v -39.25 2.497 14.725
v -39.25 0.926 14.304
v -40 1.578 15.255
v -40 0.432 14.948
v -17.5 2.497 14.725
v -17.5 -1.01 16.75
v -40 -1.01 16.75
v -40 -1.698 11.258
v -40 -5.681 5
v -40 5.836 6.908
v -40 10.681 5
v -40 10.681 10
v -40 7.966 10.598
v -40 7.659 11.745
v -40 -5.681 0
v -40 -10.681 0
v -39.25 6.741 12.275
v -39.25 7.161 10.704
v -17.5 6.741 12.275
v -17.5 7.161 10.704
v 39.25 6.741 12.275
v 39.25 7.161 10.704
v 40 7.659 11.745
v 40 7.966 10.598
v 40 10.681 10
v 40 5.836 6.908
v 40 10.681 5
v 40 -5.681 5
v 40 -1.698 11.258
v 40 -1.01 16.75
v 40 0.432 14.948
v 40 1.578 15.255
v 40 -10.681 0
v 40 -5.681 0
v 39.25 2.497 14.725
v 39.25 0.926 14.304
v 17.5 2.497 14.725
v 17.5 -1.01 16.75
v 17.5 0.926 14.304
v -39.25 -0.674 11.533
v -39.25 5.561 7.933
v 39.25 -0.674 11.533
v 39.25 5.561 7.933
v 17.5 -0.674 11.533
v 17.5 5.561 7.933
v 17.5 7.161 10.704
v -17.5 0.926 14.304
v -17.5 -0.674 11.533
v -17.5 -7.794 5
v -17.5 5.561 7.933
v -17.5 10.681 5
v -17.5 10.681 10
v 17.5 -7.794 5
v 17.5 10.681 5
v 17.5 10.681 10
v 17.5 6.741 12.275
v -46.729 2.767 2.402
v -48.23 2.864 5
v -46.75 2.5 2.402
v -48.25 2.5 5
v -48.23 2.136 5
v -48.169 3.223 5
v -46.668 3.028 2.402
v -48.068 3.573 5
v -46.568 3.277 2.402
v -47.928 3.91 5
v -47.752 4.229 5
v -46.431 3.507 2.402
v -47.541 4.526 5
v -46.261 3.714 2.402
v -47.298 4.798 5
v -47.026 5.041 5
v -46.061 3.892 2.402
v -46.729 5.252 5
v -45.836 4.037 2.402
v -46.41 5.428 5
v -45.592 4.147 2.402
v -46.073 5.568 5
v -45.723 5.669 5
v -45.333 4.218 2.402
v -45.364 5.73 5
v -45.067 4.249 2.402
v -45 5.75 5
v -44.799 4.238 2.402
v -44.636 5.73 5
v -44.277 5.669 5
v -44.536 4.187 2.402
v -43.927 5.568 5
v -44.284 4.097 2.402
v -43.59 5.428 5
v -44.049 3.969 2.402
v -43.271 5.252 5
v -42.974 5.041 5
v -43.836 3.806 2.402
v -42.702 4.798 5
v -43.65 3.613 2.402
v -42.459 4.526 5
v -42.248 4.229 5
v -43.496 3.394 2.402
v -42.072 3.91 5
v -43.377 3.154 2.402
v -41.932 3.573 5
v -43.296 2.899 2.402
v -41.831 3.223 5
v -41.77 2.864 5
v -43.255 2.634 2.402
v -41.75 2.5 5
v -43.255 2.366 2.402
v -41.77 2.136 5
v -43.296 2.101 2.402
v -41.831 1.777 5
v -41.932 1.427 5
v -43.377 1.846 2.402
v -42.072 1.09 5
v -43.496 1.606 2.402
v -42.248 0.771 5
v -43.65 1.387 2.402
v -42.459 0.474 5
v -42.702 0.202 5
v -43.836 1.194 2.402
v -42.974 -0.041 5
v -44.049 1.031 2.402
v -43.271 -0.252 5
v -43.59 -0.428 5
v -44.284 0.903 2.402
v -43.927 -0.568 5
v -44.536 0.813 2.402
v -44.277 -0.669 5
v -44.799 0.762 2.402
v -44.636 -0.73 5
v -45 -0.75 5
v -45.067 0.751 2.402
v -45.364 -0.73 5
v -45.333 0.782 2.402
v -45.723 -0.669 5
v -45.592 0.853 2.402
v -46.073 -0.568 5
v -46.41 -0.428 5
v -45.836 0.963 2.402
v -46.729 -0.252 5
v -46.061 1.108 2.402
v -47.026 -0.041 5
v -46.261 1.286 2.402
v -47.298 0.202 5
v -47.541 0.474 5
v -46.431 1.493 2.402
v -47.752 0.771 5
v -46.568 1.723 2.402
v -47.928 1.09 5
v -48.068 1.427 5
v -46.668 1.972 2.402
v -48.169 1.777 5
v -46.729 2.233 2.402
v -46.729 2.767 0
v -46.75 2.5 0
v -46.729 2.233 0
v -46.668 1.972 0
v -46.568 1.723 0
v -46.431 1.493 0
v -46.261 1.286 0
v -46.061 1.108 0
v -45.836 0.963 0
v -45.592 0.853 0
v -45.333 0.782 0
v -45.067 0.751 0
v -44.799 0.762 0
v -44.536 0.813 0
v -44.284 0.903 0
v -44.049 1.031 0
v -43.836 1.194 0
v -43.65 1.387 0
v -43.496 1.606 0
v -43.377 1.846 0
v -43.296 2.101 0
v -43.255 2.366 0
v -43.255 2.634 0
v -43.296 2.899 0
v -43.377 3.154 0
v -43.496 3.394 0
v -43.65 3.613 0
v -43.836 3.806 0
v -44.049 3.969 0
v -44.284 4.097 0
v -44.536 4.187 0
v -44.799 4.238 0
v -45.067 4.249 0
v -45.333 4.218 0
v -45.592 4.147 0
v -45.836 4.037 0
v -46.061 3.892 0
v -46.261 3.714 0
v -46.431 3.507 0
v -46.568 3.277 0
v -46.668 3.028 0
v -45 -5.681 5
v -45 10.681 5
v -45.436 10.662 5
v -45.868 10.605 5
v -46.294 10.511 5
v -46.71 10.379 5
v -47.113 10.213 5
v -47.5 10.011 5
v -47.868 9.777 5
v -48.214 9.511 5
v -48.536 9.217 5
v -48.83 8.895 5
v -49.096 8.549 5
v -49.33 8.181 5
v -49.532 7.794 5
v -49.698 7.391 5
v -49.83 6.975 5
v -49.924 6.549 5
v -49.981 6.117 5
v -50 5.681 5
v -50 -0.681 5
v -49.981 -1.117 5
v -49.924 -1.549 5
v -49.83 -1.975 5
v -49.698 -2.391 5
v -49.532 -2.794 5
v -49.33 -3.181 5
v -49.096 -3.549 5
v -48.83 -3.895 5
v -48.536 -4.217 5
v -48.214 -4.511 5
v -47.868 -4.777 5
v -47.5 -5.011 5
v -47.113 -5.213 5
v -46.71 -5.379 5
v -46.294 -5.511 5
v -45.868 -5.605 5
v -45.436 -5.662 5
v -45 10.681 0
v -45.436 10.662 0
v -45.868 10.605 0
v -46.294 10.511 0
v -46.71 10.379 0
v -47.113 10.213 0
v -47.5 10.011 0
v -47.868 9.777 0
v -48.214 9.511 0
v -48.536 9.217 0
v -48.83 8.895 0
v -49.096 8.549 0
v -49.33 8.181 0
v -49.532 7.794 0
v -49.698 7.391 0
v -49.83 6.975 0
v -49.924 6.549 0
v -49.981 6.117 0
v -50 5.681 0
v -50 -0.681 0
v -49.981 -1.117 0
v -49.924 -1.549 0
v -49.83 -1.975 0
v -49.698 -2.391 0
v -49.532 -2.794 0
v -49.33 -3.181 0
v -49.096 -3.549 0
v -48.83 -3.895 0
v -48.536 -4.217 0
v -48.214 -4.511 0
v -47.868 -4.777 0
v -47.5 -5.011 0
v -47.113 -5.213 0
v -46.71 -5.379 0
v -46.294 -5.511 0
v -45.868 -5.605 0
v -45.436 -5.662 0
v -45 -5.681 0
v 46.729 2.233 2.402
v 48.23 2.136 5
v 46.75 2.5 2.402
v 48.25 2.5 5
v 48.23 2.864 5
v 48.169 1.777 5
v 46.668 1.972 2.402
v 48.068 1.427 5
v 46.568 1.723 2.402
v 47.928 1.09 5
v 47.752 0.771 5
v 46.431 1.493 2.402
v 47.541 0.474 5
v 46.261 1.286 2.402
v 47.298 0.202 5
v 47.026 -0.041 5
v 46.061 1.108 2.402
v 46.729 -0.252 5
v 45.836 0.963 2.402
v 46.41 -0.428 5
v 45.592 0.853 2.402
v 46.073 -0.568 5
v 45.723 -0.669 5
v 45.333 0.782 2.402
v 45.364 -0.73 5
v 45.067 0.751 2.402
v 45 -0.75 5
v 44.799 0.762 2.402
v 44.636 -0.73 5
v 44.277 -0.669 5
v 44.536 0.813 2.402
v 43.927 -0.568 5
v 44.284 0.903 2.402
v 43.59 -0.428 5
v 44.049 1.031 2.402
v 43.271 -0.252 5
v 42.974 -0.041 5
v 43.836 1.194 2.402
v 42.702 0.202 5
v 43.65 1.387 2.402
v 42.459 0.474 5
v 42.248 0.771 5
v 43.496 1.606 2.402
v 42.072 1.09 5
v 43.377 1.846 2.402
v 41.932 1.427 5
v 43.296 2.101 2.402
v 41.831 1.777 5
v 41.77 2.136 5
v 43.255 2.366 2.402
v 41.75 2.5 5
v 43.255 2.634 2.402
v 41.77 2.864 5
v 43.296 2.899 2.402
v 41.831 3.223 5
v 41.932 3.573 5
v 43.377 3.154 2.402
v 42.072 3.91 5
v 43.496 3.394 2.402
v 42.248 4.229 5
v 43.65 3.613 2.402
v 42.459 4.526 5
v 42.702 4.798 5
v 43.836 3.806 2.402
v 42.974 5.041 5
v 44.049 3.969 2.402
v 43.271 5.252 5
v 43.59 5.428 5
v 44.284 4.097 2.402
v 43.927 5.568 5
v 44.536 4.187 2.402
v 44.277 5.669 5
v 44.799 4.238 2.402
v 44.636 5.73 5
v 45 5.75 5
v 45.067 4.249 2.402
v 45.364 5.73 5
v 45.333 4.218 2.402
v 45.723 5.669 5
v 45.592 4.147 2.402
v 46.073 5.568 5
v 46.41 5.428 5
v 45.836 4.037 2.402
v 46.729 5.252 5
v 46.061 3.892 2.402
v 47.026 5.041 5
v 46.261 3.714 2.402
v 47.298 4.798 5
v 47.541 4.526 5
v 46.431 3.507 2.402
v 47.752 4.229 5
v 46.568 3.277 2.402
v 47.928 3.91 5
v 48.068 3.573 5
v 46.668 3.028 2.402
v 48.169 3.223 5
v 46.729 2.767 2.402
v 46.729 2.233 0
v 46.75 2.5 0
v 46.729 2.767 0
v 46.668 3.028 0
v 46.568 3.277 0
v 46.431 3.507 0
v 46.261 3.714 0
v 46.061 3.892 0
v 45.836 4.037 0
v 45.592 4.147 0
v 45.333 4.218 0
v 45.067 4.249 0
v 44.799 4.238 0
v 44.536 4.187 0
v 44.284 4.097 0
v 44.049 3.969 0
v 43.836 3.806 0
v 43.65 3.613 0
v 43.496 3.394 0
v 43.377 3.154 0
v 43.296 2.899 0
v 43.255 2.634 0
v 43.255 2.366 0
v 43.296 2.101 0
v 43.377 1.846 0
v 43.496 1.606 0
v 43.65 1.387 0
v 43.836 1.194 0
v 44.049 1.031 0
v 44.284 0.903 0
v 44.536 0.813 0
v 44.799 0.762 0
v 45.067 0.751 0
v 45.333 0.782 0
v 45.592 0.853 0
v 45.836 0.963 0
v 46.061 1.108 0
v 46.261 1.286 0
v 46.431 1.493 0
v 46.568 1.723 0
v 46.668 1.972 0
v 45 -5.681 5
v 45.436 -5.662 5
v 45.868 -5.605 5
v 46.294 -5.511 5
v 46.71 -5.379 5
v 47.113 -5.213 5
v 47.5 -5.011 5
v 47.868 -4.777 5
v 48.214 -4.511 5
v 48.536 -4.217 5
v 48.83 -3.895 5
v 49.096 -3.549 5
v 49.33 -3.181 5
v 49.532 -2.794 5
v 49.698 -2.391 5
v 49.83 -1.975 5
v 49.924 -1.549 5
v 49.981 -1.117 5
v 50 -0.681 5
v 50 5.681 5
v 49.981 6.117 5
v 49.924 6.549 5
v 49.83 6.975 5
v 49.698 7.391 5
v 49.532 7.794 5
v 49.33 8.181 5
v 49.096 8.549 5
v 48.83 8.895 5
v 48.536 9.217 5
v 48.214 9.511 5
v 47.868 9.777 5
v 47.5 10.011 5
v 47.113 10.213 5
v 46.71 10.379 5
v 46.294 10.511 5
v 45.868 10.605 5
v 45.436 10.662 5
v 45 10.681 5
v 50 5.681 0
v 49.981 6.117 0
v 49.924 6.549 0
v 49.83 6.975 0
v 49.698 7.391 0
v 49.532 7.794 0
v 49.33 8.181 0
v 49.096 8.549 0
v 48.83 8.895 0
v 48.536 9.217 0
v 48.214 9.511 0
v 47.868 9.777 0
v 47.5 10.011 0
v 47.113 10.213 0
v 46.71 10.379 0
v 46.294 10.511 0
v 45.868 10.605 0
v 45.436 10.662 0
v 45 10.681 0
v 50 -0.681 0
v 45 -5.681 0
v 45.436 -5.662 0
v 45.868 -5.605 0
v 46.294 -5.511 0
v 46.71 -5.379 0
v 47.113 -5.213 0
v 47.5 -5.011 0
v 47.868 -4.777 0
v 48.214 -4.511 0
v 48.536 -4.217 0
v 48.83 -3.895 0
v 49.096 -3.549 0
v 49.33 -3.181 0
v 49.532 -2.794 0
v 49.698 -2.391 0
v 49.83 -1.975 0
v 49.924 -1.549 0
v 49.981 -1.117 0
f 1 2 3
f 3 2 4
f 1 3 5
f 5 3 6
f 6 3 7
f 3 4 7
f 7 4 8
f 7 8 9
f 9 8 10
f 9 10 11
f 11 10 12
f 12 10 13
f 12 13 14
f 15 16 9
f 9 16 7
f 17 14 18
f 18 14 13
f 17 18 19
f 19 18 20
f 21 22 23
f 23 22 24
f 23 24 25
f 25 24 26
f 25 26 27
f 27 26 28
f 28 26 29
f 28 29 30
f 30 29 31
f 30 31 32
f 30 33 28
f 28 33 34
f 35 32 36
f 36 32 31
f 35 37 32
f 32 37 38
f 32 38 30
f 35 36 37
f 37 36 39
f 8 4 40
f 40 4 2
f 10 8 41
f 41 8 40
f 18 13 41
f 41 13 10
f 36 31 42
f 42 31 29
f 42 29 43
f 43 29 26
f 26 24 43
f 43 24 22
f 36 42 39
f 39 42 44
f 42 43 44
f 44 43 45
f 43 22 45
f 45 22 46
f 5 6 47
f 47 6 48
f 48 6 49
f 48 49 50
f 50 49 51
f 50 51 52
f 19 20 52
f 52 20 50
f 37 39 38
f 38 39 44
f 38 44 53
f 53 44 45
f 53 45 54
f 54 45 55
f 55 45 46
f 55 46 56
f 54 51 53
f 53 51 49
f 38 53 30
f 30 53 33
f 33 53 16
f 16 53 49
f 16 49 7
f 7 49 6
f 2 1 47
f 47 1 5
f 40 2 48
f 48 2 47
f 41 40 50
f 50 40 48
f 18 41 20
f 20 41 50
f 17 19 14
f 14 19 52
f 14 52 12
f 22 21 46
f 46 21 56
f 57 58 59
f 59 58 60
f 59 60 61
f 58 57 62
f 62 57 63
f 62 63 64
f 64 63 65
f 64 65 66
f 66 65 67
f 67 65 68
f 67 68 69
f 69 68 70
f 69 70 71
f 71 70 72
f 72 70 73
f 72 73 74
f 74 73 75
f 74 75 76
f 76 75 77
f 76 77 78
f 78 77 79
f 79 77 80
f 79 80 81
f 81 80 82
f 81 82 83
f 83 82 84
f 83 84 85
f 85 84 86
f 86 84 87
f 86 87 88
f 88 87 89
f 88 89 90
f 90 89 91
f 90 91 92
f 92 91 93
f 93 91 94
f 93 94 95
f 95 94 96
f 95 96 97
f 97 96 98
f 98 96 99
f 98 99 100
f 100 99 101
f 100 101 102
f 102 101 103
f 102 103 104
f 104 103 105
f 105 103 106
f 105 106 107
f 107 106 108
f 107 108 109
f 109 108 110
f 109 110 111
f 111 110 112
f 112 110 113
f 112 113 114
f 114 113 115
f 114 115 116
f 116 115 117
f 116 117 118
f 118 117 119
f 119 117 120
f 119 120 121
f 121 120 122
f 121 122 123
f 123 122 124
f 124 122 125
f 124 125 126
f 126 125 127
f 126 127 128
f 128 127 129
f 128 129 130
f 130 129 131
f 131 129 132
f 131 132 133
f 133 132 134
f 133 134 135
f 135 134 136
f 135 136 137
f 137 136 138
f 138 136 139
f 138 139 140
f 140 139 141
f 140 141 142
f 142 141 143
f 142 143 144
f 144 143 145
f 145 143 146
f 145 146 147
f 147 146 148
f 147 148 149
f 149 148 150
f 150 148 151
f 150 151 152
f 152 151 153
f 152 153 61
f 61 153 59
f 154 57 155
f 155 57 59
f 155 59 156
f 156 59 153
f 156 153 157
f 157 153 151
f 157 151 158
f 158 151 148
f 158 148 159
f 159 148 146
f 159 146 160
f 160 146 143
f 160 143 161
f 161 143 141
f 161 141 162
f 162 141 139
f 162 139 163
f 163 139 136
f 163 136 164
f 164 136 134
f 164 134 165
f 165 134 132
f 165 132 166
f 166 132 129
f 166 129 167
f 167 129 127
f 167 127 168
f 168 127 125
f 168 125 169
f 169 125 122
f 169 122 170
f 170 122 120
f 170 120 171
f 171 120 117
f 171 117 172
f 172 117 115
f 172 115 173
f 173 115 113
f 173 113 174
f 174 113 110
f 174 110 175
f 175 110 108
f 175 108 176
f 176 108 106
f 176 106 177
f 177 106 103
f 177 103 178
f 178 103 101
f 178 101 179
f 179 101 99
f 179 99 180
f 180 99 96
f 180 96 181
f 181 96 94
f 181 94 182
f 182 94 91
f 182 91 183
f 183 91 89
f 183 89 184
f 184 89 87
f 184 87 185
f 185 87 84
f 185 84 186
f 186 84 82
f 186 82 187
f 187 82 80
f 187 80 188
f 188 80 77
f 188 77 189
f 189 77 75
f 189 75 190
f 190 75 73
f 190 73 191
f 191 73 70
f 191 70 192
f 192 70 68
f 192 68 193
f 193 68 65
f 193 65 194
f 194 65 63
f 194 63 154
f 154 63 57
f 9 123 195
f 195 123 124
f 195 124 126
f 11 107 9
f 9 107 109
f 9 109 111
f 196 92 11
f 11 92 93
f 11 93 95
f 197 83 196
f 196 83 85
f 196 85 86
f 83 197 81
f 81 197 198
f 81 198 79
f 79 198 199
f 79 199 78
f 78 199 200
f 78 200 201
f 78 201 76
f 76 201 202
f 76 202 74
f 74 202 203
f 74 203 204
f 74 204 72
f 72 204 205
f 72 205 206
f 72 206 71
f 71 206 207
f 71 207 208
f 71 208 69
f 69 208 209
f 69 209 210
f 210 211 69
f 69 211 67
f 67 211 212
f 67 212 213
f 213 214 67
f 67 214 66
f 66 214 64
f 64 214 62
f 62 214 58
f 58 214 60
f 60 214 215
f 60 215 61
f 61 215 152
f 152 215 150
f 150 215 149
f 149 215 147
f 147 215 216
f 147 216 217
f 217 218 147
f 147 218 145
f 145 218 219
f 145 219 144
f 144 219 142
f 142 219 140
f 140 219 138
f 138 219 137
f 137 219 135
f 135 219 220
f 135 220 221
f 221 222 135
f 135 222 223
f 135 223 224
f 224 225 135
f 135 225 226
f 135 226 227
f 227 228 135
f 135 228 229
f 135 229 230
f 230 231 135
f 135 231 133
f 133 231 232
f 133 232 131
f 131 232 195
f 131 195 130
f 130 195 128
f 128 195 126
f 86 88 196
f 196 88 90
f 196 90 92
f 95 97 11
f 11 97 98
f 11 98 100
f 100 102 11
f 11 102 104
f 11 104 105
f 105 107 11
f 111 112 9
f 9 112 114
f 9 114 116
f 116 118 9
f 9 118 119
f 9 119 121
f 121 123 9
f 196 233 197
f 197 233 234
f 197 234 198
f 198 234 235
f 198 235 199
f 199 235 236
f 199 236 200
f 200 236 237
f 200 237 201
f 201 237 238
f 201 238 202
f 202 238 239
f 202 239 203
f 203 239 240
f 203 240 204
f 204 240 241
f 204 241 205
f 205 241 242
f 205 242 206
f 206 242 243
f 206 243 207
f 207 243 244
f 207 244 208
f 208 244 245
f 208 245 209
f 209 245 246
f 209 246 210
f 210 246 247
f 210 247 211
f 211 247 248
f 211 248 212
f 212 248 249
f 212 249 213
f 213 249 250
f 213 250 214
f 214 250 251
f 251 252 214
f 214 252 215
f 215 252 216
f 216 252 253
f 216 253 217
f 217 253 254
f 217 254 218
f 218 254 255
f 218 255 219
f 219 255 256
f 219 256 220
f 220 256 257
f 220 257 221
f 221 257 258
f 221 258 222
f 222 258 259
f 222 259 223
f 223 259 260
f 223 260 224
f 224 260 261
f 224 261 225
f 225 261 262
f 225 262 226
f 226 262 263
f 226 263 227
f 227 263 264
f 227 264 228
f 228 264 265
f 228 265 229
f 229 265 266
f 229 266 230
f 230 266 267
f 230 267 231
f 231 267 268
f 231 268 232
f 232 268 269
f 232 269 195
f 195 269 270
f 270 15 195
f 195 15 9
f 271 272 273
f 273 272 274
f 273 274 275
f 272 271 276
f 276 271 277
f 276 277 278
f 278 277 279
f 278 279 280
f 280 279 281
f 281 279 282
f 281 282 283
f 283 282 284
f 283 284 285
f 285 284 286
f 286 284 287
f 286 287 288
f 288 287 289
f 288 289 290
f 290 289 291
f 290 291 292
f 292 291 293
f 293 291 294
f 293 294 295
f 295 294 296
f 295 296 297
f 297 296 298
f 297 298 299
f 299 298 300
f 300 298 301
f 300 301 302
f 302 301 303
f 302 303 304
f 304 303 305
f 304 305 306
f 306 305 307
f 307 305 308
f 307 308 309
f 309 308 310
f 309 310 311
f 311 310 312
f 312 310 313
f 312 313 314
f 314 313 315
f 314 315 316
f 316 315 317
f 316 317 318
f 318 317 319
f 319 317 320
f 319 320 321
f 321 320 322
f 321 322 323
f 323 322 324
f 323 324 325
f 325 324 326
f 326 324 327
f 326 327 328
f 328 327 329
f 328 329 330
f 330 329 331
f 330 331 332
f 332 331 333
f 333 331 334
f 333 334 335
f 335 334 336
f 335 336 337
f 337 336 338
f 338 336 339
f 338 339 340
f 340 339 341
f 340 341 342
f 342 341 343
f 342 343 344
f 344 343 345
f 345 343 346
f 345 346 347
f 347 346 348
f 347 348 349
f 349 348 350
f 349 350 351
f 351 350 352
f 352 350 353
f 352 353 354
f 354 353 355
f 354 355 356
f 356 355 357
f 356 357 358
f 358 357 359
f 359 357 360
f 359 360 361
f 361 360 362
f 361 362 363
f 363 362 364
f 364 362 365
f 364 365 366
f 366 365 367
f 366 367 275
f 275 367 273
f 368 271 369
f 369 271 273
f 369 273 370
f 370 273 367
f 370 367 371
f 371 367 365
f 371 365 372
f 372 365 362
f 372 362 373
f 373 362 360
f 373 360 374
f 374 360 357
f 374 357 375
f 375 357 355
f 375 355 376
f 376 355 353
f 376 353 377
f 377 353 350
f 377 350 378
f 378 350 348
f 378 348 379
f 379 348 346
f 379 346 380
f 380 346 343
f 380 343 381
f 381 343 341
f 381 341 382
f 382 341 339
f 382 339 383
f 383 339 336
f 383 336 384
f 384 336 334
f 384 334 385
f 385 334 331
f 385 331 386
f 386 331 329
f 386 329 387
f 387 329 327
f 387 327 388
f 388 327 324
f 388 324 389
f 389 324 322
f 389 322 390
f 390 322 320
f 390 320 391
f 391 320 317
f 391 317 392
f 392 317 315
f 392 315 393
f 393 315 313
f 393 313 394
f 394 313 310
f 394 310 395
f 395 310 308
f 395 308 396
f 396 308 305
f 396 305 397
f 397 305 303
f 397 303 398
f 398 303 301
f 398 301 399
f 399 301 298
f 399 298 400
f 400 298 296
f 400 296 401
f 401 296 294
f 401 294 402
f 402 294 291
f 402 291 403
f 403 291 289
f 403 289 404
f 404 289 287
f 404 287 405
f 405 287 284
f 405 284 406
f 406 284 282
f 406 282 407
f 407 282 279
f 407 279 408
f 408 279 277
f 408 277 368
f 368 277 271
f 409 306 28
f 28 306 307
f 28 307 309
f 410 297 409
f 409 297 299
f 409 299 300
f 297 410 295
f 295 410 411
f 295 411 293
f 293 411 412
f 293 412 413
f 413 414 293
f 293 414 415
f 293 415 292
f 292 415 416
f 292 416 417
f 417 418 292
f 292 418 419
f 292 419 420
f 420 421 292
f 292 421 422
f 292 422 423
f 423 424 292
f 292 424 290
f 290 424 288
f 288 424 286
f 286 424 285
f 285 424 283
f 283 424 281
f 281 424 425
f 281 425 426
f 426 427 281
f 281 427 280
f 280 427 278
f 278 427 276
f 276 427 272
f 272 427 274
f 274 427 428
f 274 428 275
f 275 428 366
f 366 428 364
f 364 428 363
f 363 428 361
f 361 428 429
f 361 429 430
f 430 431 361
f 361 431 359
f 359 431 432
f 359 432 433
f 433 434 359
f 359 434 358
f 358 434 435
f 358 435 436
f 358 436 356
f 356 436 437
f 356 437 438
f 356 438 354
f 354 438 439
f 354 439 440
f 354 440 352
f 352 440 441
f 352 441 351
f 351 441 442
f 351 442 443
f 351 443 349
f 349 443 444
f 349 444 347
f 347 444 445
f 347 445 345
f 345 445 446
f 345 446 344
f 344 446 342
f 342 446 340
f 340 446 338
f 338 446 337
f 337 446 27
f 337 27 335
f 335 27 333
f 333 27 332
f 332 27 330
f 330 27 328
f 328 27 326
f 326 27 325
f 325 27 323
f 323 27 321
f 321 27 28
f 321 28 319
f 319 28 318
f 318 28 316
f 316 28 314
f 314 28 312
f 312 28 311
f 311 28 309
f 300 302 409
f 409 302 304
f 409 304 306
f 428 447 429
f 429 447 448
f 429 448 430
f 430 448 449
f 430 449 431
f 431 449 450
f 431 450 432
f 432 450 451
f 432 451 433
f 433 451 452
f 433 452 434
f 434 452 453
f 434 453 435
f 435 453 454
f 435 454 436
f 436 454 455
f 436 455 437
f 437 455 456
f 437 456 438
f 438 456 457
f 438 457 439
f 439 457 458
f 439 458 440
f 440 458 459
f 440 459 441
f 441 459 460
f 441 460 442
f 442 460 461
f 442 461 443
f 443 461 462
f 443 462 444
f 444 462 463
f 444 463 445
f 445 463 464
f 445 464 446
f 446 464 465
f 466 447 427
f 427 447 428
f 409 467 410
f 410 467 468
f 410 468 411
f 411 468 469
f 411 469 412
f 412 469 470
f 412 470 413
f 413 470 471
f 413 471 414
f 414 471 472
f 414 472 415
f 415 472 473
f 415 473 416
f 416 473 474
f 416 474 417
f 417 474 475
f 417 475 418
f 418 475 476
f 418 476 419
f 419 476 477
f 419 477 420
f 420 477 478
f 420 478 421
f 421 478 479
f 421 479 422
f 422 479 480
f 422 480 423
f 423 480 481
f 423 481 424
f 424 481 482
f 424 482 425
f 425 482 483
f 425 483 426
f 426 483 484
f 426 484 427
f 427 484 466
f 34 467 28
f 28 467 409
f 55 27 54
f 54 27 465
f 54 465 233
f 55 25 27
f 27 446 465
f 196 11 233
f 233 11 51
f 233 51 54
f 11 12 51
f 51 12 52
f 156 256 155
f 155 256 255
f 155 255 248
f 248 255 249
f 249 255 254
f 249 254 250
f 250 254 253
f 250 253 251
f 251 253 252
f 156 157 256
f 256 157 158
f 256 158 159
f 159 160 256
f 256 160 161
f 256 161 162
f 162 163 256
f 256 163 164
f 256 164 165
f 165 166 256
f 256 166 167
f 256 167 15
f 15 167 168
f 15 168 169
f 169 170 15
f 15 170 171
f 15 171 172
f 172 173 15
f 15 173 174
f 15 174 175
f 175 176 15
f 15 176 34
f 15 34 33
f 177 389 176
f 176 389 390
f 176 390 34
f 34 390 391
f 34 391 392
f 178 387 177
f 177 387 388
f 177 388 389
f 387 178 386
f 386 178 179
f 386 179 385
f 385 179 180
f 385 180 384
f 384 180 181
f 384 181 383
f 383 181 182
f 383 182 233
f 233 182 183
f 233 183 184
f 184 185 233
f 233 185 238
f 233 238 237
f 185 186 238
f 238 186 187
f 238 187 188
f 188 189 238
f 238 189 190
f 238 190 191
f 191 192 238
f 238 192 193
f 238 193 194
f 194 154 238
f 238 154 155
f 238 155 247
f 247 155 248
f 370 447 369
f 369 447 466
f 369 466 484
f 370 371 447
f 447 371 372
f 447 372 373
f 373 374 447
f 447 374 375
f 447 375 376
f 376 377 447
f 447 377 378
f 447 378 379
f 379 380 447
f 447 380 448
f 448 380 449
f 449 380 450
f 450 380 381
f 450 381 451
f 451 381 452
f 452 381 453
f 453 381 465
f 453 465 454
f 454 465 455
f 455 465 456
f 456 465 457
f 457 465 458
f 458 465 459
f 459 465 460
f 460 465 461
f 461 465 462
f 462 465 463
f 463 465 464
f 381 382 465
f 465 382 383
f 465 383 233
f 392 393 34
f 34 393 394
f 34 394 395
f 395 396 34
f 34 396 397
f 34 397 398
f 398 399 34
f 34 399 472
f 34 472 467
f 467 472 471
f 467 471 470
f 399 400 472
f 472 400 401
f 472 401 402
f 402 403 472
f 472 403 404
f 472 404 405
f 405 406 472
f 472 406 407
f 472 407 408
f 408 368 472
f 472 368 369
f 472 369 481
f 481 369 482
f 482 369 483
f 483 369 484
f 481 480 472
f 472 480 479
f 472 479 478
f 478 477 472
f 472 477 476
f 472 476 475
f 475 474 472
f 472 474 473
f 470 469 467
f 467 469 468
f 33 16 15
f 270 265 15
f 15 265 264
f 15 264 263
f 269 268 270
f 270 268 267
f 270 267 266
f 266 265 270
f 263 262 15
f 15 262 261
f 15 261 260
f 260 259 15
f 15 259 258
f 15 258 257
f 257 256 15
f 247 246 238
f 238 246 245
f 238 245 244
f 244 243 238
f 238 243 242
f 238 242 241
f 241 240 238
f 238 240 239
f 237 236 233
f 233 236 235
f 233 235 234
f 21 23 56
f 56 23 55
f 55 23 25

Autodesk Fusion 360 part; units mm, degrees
sketch "Sketch1" plane through (0, 0, 0) normal (1, 0, 0) x (0, 1, 0)
  line L0 (-1.0104, 16.75) -> (-10.681, 0)
  line L1 (-10.681, 0) -> (10.681, 0)
  line L2 (10.681, 0) -> (10.681, 10)
  line L3 (10.681, 10) -> (-1.0104, 16.75)
  line L4 (1.5877, 15.25) -> (-0.5373, 11.5694)
  line L5 (-0.5373, 11.5694) -> (5.5249, 8.0694)
  line L6 (5.5249, 8.0694) -> (7.6499, 11.75)
  line L7 (7.6499, 11.75) -> (1.5877, 15.25) construction
  line L8 (5.5249, 8.0694) -> (-0.5373, 8.0694) construction
  line L9 (-0.5373, 8.0694) -> (-0.5373, 11.5694) construction
  line L10 (10.681, 7.5463) -> (6.5874, 9.9097) construction
  line L11 (0.5252, 13.4097) -> (-2.0729, 14.9097) construction
  line L12 (7.0249, 10.6675) -> (6.5674, 12.375) construction
  line L13 (0.9627, 14.1675) -> (2.6702, 14.625) construction
  dimension "d1" = 30
  dimension "d2" = 7
  dimension "d5" = 10
  dimension "d6" = 3.5
  dimension "d7" = 60
  dimension "d24" = 3
  dimension "d34" = 3
  dimension "d35" = 1.25
  dimension "d36" = 1.25
  dimension "d38" = 45
extrude "Extrude1" add sketch "Sketch1" along normal mid plane 80
sketch "Sketch3" plane through (0, 0, 0) normal (0, 0, 1) x (1, 0, 0)
  line L0 (40, -10.681) -> (40, 10.681)
  line L1 (40, 10.681) -> (45, 10.681)
  line L2 (50, 5.681) -> (50, -0.681)
  line L3 (45, -5.681) -> (40, -5.681)
  line L4 (40, -5.681) -> (40, 10.681)
  arc A0 (50, 5.681) -> (45, 10.681) centre (45, 5.681) ccw
  arc A1 (45, -5.681) -> (50, -0.681) centre (45, -0.681) ccw
  dimension "d11" = 5
  dimension "d12" = 10
  dimension "d15" = 5
extrude "Extrude2" add sketch "Sketch3" along normal blind 5
sketch "Sketch4" plane through (0, 0, 5) normal (0, 0, 1) x (-1, 0, 0)
  line L0 (-40, 5.681) -> (-45, 5.681)
  arc A0 (-45, 5.681) -> (-50, 0.681) centre (-45, 0.681) ccw
  line L1 (-50, 0.681) -> (-50, -5.681)
  arc A1 (-50, -5.681) -> (-45, -10.681) centre (-45, -5.681) ccw
  line L2 (-45, -10.681) -> (-40, -10.681)
  line L3 (-40, -10.681) -> (-40, 5.681)
  circle A2 centre (-45, -2.5) radius 1.75
  line L4 (-45, -10.681) -> (-45, 5.681) construction
  line L5 (-40, -10.681) -> (-50, -10.681) construction
  line L6 (-50, -5.681) -> (-50, -10.681) construction
  dimension "d16" = 3.5
extrude "Extrude3" cut sketch "Sketch4" against normal up to surface (5 mm away) contours A2
chamfer "Chamfer1" distance 1.5 angle 60 1 edges at (46.6316, 1.8672, 5) measured on face at (43.0417, -3.4592, 5)
mirror "Mirror1" about plane through (0, 0, 0) normal (1, 0, 0) of "Extrude2", "Extrude3", "Chamfer1"
sketch "Sketch5" plane through (40, 0, 0) normal (1, 0, 0) x (0, 1, 0)
  line L0 (-5.681, 0) -> (-5.681, 5)
  line L1 (-5.681, 5) -> (10.681, 5)
  line L2 (10.681, 5) -> (10.681, 10)
  line L3 (10.681, 10) -> (-1.0104, 16.75)
  line L4 (-1.0104, 16.75) -> (-10.681, 0)
  line L5 (-10.681, 0) -> (-5.681, 0)
  line L6 (1.5877, 15.25) -> (-0.5373, 11.5694) construction
  line L7 (-0.5373, 11.5694) -> (5.5249, 8.0694) construction
  line L8 (5.5249, 8.0694) -> (7.6499, 11.75) construction
  line L9 (1.5011, 15.3) -> (-0.6739, 11.5328)
  line L10 (-0.6739, 11.5328) -> (5.5615, 7.9328)
  line L11 (5.5615, 7.9328) -> (7.7365, 11.7)
  line L12 (0.9261, 14.3041) -> (2.497, 14.725)
  line L13 (7.1615, 10.7041) -> (6.7406, 12.275)
  dimension "d25" = 0.1
  dimension "d26" = 45
  dimension "d27" = 1.15
  dimension "d28" = 1.15
extrude "Extrude4" cut sketch "Sketch5" against normal up to surface (80 mm away) contours L3 L9 L10 L11 L12 L13
sketch "Sketch6" plane through (0, 0, 0) normal (0, 1, 0) x (1, 0, 0)
  line L0 (-40, -16.75) -> (40, -16.75)
  line L1 (-17.5, -16.75) -> (17.5, -16.75)
  line L2 (17.5, -16.75) -> (17.5, -5)
  line L3 (17.5, -5) -> (-17.5, -5)
  line L4 (-17.5, -5) -> (-17.5, -16.75)
  line L5 (40, -5) -> (45, -5)
  dimension "d32" = 35
extrude "Extrude5" cut sketch "Sketch6" along normal through all and the other way through all
chamfer "Chamfer2" distance 0.75 angle 45 6 edges at (40, 0.1261, 12.9184) (40, 2.4438, 9.7328) (40, 6.3615, 9.3184) (-40, 2.4438, 9.7328) (-40, 0.1261, 12.9184) (-40, 6.3615, 9.3184)
chamfer "Chamfer3" distance 0.75 angle 45 4 edges at (40, 1.1993, 14.3773) (40, 7.0883, 10.9773) (-40, 7.0883, 10.9773) (-40, 1.1993, 14.3773)
